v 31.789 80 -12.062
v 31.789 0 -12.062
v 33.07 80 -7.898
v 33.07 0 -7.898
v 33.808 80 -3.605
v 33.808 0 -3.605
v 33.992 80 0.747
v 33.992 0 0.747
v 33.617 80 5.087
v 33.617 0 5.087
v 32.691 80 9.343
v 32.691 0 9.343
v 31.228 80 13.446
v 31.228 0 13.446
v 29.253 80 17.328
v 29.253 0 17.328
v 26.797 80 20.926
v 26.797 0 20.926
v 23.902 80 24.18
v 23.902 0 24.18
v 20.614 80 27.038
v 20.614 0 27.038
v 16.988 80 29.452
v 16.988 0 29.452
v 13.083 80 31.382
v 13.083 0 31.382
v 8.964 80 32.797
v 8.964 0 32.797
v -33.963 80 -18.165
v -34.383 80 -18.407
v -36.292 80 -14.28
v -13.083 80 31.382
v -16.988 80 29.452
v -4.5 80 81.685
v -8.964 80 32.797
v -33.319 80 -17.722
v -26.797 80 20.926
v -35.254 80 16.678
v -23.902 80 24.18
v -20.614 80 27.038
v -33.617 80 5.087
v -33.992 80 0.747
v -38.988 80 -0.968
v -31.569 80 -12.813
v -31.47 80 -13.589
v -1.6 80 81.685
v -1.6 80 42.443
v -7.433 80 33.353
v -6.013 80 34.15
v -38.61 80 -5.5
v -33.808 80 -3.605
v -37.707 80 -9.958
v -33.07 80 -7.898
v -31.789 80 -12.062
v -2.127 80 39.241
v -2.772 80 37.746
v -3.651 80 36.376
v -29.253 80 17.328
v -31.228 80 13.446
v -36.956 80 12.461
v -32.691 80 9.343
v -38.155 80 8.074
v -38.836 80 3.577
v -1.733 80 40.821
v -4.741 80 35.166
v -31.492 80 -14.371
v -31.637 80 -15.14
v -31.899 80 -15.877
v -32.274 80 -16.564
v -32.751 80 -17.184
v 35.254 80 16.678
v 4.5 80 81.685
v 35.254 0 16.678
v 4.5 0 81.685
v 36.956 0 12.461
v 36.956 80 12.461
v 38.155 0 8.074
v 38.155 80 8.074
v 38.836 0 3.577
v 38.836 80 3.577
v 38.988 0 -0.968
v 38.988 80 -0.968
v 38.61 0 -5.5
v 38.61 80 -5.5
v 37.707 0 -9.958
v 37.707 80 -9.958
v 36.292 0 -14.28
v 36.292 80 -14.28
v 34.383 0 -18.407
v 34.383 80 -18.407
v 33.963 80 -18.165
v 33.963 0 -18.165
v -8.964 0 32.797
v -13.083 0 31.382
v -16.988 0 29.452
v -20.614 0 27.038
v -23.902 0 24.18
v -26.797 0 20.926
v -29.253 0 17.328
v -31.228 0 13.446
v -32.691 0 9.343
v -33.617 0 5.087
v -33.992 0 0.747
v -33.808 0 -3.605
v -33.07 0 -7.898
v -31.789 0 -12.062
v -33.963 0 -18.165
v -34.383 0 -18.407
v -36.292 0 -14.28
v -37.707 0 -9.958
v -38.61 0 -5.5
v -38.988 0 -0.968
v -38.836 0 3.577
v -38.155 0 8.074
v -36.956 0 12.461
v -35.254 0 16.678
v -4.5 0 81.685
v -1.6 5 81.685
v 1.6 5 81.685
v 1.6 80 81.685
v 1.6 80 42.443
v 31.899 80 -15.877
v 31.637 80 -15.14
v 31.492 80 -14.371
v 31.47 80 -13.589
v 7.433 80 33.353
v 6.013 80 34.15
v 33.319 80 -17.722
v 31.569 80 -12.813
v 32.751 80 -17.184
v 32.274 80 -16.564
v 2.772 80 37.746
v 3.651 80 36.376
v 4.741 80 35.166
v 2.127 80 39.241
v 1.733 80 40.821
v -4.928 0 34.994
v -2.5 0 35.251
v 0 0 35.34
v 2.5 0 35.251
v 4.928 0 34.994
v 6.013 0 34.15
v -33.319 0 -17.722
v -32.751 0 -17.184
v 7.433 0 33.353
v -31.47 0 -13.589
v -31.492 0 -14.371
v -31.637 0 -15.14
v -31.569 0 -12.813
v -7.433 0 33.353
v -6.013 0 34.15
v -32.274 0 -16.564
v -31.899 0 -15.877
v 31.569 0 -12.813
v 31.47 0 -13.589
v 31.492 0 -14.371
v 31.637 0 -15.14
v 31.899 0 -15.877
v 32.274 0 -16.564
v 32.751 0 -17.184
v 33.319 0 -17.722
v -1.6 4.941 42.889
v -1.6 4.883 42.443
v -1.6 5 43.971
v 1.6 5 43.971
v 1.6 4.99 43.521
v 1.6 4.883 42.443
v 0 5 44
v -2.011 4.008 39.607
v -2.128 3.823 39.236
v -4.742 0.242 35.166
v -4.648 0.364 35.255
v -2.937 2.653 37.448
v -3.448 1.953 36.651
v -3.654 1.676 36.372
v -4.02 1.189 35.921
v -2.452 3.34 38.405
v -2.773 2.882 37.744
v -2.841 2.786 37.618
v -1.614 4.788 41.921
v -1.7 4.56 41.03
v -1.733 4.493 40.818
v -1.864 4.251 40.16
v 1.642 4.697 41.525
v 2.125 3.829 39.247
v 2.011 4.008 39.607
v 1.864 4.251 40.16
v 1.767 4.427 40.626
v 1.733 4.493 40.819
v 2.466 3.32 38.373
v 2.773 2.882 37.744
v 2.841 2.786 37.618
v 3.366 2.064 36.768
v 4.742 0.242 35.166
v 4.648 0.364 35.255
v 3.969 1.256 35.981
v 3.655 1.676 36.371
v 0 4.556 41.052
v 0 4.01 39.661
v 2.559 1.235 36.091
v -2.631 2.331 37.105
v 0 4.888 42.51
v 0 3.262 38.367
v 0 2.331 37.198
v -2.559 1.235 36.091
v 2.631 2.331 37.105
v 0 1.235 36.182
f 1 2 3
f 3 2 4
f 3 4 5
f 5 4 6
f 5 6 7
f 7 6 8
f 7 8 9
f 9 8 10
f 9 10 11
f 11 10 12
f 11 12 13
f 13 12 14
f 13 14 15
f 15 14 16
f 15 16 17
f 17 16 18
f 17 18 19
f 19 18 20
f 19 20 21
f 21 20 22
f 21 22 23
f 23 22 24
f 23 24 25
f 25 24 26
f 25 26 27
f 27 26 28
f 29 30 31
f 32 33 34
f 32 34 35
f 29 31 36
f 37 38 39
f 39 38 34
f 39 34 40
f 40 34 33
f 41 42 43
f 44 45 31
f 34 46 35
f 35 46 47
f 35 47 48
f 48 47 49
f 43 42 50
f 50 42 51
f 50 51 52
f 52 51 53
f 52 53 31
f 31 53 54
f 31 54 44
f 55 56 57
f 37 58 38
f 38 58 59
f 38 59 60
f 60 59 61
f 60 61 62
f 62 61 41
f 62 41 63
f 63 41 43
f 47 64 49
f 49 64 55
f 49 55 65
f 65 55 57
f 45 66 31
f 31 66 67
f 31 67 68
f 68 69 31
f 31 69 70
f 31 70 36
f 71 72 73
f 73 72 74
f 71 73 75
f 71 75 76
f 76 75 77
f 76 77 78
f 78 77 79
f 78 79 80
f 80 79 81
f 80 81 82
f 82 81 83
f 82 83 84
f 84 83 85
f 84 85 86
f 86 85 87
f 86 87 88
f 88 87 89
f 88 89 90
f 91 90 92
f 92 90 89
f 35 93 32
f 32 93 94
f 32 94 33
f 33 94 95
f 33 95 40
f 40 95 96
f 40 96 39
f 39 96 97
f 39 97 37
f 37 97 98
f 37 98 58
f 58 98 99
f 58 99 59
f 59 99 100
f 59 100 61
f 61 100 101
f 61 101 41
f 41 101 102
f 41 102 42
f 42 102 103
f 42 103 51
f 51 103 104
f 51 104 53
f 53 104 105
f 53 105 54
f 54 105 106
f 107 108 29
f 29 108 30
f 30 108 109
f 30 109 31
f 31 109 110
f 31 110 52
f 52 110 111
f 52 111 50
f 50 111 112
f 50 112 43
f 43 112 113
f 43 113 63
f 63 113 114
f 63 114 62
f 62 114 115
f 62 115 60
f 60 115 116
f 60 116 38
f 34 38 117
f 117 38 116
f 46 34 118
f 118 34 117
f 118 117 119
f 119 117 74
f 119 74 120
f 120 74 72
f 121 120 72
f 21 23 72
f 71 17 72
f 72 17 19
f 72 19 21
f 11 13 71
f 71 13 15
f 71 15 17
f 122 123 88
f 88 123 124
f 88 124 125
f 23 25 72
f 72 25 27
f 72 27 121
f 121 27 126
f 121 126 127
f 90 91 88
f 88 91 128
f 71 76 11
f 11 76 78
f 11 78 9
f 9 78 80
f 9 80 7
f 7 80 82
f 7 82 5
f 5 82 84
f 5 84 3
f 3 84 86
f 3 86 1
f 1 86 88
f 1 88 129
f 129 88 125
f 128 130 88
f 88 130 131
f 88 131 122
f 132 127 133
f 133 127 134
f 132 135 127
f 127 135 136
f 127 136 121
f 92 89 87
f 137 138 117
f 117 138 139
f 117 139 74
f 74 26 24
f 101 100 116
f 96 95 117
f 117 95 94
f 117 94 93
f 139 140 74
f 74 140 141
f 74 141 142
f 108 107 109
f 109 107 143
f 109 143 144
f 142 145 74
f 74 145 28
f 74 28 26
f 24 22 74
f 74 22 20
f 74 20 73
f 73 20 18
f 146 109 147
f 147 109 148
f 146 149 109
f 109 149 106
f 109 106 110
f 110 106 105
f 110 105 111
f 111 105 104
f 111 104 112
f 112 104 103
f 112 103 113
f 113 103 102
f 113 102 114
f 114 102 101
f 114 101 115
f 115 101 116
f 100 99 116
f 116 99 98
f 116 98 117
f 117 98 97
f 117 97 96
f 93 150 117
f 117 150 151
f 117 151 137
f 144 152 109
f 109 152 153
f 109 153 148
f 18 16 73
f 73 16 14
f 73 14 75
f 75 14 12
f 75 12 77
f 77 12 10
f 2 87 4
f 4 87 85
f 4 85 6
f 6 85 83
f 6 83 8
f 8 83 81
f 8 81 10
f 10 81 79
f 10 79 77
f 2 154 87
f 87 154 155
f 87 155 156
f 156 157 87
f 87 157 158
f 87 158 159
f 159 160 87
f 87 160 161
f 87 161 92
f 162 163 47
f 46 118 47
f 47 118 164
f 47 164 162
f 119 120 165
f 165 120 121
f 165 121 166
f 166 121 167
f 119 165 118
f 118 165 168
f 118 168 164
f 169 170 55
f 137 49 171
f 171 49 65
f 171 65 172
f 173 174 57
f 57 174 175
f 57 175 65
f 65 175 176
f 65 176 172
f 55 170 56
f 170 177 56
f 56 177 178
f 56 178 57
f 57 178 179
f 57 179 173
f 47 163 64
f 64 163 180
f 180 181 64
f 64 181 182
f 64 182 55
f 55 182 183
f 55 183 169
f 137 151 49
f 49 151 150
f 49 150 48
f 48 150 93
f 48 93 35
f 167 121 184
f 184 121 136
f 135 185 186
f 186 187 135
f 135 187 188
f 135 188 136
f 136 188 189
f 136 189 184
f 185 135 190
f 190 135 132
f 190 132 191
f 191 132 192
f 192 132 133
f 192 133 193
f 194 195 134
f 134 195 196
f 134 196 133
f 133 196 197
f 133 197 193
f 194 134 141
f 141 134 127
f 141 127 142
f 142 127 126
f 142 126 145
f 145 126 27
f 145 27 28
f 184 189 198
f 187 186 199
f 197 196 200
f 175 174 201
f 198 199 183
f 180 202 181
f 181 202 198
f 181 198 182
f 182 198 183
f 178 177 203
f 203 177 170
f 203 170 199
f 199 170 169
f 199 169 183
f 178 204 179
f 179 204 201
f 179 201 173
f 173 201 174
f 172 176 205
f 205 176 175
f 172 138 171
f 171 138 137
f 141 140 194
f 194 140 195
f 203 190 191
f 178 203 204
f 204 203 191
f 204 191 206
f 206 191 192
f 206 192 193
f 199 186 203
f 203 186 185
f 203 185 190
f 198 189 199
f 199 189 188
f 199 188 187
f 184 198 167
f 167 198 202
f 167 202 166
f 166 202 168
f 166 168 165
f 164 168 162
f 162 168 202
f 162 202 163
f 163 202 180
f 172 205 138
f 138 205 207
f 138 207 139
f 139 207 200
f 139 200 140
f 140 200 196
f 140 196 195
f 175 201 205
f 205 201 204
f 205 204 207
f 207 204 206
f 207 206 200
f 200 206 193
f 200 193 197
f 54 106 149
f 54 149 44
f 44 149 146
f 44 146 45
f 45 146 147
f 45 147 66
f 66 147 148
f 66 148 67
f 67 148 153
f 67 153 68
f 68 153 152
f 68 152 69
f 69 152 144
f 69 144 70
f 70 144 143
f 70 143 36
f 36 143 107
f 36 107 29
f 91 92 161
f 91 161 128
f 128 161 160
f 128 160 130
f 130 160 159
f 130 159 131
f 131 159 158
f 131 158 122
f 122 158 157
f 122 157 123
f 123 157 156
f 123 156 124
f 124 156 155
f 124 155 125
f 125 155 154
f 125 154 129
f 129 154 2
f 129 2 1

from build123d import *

# Parameters (mm, degrees)
FIN_SLOT_EXTRUDE_DEPTH = 80
FIN_START              = -75
FIN_SLOT_DEPTH         = 75
FILLET1_R              = 10
FILLET2_R              = 5


with BuildPart() as part:
    # Sketch2 → Fin slot extrude (new body)
    with BuildSketch(Plane(origin=(0, 0, 0), x_dir=(1, 0, 0), z_dir=(0, 1, 0))):
        with BuildLine():
            Line((-35.253910446, -16.678183302), (-4.5, -81.685))
            Line((-4.5, -81.685), (4.5, -81.685))
            Line((4.5, -81.685), (35.253910446, -16.678183302))
            ThreePointArc((35.253910446, -16.678183302), (38.987980591, 0.968178408), (34.382638025, 18.407449646))
            Line((34.382638025, 18.407449646), (30.049957519, 15.90597539))
            ThreePointArc((30.049957519, 15.90597539), (0, -34), (-30.049957519, 15.90597539))
            Line((-30.049957519, 15.90597539), (-34.382638025, 18.407449646))
            ThreePointArc((-34.382638025, 18.407449646), (-38.987980591, 0.968178408), (-35.253910446, -16.678183302))
        make_face()
    extrude(amount=FIN_SLOT_EXTRUDE_DEPTH)

    # Sketch3 → Fin slot (cut)
    with BuildSketch(Plane(origin=(0, 80, 0), x_dir=(1, 0, 0), z_dir=(0, 1, 0)).offset(FIN_START)):
        with BuildLine():
            Line((1.6, -81.685), (1.6, -33.962332075))
            ThreePointArc((1.6, -33.962332075), (0, -34), (-1.6, -33.962332075))
            Line((-1.6, -33.962332075), (-1.6, -81.685))
            Line((-1.6, -81.685), (1.6, -81.685))
        make_face()
    extrude(amount=FIN_SLOT_DEPTH, mode=Mode.SUBTRACT)

    # Fillet1
    # the kernel refuses this fillet: 10 mm, written as the material it takes off along each edge
    with BuildSketch(Plane(origin=(-1.6, 5, 33.962332075), x_dir=(0, 0, 1), z_dir=(0, 1, 0))) as fillet1_piece_1:
        with BuildLine():
            CenterArc((8.481041966, -10), FILLET1_R, 90, 74.714058958)
            Line((-1.165179407, -7.363636364), (-1.358103835, -7.310909091))
            ThreePointArc((-1.358103835, -7.310909091), (-0.577691759, -3.682593204), (-0.199778424, 0.009411765))
            Line((-0.199778424, 0.009411765), (0, 0.2))
            Line((0, 0.2), (8.481041966, 0.2))
            Line((8.481041966, 0.2), (8.481041966, 0))
        make_face()
    extrude(amount=75, mode=Mode.SUBTRACT)
    with BuildSketch(Plane(origin=(1.6, 5, 33.962332075), x_dir=(0, 0, 1), z_dir=(0, 1, 0))) as fillet1_piece_2:
        with BuildLine():
            CenterArc((8.481041966, 10), FILLET1_R, 195.285941042, 74.714058958)
            Line((-1.165179407, 7.363636364), (-1.358103835, 7.310909091))
            ThreePointArc((-1.358103835, 7.310909091), (-0.577691759, 3.682593204), (-0.199778424, -0.009411765))
            Line((-0.199778424, -0.009411765), (0, -0.2))
            Line((0, -0.2), (8.481041966, -0.2))
            Line((8.481041966, -0.2), (8.481041966, 0))
        make_face()
    extrude(amount=75, mode=Mode.SUBTRACT)
    with BuildSketch(Plane(origin=(0, 5, 0), x_dir=(0.7049632922211216, 0, 0.7092437920918008), z_dir=(0.7092437920918008, 0, -0.7049632922211216))) as fillet1_piece_3_section:
        with BuildLine():
            CenterArc((34 + FILLET1_R, FILLET1_R), FILLET1_R, 180, 90)
            Line((34, FILLET1_R), (34 - FILLET1_R * 0.02, FILLET1_R))
            Line((34 - FILLET1_R * 0.02, FILLET1_R), (34 - FILLET1_R * 0.02, -FILLET1_R * 0.02))
            Line((34 - FILLET1_R * 0.02, -FILLET1_R * 0.02), (34 + FILLET1_R, -FILLET1_R * 0.02))
            Line((34 + FILLET1_R, -FILLET1_R * 0.02), (34 + FILLET1_R, 0))
        make_face()
    fillet1_piece_3 = revolve(axis=Axis((0, 5, 0), (0, -1, 0)), revolution_arc=89.653157122, mode=Mode.PRIVATE)
    fillet1_piece_3 = split(fillet1_piece_3, bisect_by=Plane(origin=(1.6, 2.736001805, 36.252063161), z_dir=(-1, 0, 0)), keep=Keep.TOP, mode=Mode.PRIVATE)
    fillet1_piece_3 = split(fillet1_piece_3, bisect_by=Plane(origin=(-1.6, 2.736001805, 36.252063161), z_dir=(1, 0, 0)), keep=Keep.TOP, mode=Mode.PRIVATE)
    add(fillet1_piece_3, mode=Mode.SUBTRACT)
    with BuildSketch(Plane(origin=(0, 5, 0), x_dir=(0.7049632922211216, 0, 0.7092437920918008), z_dir=(0.7092437920918008, 0, -0.7049632922211216))) as fillet1_piece_4a_section:
        with BuildLine():
            CenterArc((34 + FILLET1_R, FILLET1_R), FILLET1_R, 180, 90)
            Line((34, FILLET1_R), (34 - FILLET1_R * 0.02, FILLET1_R))
            Line((34 - FILLET1_R * 0.02, FILLET1_R), (34 - FILLET1_R * 0.02, -FILLET1_R * 0.02))
            Line((34 - FILLET1_R * 0.02, -FILLET1_R * 0.02), (34 + FILLET1_R, -FILLET1_R * 0.02))
            Line((34 + FILLET1_R, -FILLET1_R * 0.02), (34 + FILLET1_R, 0))
        make_face()
    fillet1_piece_4a = revolve(axis=Axis((0, 5, 0), (0, -1, 0)), revolution_arc=89.653157122, mode=Mode.PRIVATE)
    fillet1_piece_4a = split(fillet1_piece_4a, bisect_by=Plane(origin=(-1.6, 2.81629174, 32.584573329), z_dir=(-1, 0, 0)), keep=Keep.TOP, mode=Mode.PRIVATE)
    with BuildSketch(Plane(origin=(-1.6, -16.202604914, 33.962332075), x_dir=(0, 0, 1), z_dir=(0, 1, 0))) as fillet1_piece_4b_section:
        with BuildLine():
            CenterArc((8.481041966, -10), FILLET1_R, 90, 74.714058958)
            Line((-1.165179407, -7.363636364), (-1.358103835, -7.310909091))
            ThreePointArc((-1.358103835, -7.310909091), (-0.577691759, -3.682593204), (-0.199778424, 0.009411765))
            Line((-0.199778424, 0.009411765), (0, 0.2))
            Line((0, 0.2), (8.481041966, 0.2))
            Line((8.481041966, 0.2), (8.481041966, 0))
        make_face()
    fillet1_piece_4b = extrude(amount=96.202604914, mode=Mode.PRIVATE)
    fillet1_piece_4b = split(fillet1_piece_4b, bisect_by=Plane(origin=(-3.235617235, 5, 35.755925785), z_dir=(0, -1, 0)), keep=Keep.TOP, mode=Mode.PRIVATE)
    fillet1_piece_4 = fillet1_piece_4a & fillet1_piece_4b
    add(fillet1_piece_4, mode=Mode.SUBTRACT)
    with BuildSketch(Plane(origin=(1.6, -16.202604914, 33.962332075), x_dir=(0, 0, 1), z_dir=(0, 1, 0))) as fillet1_piece_5a_section:
        with BuildLine():
            CenterArc((8.481041966, 10), FILLET1_R, 195.285941042, 74.714058958)
            Line((-1.165179407, 7.363636364), (-1.358103835, 7.310909091))
            ThreePointArc((-1.358103835, 7.310909091), (-0.577691759, 3.682593204), (-0.199778424, -0.009411765))
            Line((-0.199778424, -0.009411765), (0, -0.2))
            Line((0, -0.2), (8.481041966, -0.2))
            Line((8.481041966, -0.2), (8.481041966, 0))
        make_face()
    fillet1_piece_5a = extrude(amount=96.202604914, mode=Mode.PRIVATE)
    fillet1_piece_5a = split(fillet1_piece_5a, bisect_by=Plane(origin=(3.235617235, 5, 35.755925785), z_dir=(0, -1, 0)), keep=Keep.TOP, mode=Mode.PRIVATE)
    with BuildSketch(Plane(origin=(0, 5, 0), x_dir=(0.7049632922211216, 0, 0.7092437920918008), z_dir=(0.7092437920918008, 0, -0.7049632922211216))) as fillet1_piece_5b_section:
        with BuildLine():
            CenterArc((34 + FILLET1_R, FILLET1_R), FILLET1_R, 180, 90)
            Line((34, FILLET1_R), (34 - FILLET1_R * 0.02, FILLET1_R))
            Line((34 - FILLET1_R * 0.02, FILLET1_R), (34 - FILLET1_R * 0.02, -FILLET1_R * 0.02))
            Line((34 - FILLET1_R * 0.02, -FILLET1_R * 0.02), (34 + FILLET1_R, -FILLET1_R * 0.02))
            Line((34 + FILLET1_R, -FILLET1_R * 0.02), (34 + FILLET1_R, 0))
        make_face()
    fillet1_piece_5b = revolve(axis=Axis((0, 5, 0), (0, -1, 0)), revolution_arc=89.653157122, mode=Mode.PRIVATE)
    fillet1_piece_5b = split(fillet1_piece_5b, bisect_by=Plane(origin=(1.6, 2.816291902, 32.584573464), z_dir=(1, 0, 0)), keep=Keep.TOP, mode=Mode.PRIVATE)
    fillet1_piece_5 = fillet1_piece_5a & fillet1_piece_5b
    add(fillet1_piece_5, mode=Mode.SUBTRACT)

    # Fillet2
    fillet2_edges = [part.edges().sort_by_distance(p)[0] for p in [
        (-30.049957519, 40, -15.90597539),
        (30.049957519, 40, -15.90597539),
    ]]
    fillet(fillet2_edges, radius=FILLET2_R)


solid = part.part
